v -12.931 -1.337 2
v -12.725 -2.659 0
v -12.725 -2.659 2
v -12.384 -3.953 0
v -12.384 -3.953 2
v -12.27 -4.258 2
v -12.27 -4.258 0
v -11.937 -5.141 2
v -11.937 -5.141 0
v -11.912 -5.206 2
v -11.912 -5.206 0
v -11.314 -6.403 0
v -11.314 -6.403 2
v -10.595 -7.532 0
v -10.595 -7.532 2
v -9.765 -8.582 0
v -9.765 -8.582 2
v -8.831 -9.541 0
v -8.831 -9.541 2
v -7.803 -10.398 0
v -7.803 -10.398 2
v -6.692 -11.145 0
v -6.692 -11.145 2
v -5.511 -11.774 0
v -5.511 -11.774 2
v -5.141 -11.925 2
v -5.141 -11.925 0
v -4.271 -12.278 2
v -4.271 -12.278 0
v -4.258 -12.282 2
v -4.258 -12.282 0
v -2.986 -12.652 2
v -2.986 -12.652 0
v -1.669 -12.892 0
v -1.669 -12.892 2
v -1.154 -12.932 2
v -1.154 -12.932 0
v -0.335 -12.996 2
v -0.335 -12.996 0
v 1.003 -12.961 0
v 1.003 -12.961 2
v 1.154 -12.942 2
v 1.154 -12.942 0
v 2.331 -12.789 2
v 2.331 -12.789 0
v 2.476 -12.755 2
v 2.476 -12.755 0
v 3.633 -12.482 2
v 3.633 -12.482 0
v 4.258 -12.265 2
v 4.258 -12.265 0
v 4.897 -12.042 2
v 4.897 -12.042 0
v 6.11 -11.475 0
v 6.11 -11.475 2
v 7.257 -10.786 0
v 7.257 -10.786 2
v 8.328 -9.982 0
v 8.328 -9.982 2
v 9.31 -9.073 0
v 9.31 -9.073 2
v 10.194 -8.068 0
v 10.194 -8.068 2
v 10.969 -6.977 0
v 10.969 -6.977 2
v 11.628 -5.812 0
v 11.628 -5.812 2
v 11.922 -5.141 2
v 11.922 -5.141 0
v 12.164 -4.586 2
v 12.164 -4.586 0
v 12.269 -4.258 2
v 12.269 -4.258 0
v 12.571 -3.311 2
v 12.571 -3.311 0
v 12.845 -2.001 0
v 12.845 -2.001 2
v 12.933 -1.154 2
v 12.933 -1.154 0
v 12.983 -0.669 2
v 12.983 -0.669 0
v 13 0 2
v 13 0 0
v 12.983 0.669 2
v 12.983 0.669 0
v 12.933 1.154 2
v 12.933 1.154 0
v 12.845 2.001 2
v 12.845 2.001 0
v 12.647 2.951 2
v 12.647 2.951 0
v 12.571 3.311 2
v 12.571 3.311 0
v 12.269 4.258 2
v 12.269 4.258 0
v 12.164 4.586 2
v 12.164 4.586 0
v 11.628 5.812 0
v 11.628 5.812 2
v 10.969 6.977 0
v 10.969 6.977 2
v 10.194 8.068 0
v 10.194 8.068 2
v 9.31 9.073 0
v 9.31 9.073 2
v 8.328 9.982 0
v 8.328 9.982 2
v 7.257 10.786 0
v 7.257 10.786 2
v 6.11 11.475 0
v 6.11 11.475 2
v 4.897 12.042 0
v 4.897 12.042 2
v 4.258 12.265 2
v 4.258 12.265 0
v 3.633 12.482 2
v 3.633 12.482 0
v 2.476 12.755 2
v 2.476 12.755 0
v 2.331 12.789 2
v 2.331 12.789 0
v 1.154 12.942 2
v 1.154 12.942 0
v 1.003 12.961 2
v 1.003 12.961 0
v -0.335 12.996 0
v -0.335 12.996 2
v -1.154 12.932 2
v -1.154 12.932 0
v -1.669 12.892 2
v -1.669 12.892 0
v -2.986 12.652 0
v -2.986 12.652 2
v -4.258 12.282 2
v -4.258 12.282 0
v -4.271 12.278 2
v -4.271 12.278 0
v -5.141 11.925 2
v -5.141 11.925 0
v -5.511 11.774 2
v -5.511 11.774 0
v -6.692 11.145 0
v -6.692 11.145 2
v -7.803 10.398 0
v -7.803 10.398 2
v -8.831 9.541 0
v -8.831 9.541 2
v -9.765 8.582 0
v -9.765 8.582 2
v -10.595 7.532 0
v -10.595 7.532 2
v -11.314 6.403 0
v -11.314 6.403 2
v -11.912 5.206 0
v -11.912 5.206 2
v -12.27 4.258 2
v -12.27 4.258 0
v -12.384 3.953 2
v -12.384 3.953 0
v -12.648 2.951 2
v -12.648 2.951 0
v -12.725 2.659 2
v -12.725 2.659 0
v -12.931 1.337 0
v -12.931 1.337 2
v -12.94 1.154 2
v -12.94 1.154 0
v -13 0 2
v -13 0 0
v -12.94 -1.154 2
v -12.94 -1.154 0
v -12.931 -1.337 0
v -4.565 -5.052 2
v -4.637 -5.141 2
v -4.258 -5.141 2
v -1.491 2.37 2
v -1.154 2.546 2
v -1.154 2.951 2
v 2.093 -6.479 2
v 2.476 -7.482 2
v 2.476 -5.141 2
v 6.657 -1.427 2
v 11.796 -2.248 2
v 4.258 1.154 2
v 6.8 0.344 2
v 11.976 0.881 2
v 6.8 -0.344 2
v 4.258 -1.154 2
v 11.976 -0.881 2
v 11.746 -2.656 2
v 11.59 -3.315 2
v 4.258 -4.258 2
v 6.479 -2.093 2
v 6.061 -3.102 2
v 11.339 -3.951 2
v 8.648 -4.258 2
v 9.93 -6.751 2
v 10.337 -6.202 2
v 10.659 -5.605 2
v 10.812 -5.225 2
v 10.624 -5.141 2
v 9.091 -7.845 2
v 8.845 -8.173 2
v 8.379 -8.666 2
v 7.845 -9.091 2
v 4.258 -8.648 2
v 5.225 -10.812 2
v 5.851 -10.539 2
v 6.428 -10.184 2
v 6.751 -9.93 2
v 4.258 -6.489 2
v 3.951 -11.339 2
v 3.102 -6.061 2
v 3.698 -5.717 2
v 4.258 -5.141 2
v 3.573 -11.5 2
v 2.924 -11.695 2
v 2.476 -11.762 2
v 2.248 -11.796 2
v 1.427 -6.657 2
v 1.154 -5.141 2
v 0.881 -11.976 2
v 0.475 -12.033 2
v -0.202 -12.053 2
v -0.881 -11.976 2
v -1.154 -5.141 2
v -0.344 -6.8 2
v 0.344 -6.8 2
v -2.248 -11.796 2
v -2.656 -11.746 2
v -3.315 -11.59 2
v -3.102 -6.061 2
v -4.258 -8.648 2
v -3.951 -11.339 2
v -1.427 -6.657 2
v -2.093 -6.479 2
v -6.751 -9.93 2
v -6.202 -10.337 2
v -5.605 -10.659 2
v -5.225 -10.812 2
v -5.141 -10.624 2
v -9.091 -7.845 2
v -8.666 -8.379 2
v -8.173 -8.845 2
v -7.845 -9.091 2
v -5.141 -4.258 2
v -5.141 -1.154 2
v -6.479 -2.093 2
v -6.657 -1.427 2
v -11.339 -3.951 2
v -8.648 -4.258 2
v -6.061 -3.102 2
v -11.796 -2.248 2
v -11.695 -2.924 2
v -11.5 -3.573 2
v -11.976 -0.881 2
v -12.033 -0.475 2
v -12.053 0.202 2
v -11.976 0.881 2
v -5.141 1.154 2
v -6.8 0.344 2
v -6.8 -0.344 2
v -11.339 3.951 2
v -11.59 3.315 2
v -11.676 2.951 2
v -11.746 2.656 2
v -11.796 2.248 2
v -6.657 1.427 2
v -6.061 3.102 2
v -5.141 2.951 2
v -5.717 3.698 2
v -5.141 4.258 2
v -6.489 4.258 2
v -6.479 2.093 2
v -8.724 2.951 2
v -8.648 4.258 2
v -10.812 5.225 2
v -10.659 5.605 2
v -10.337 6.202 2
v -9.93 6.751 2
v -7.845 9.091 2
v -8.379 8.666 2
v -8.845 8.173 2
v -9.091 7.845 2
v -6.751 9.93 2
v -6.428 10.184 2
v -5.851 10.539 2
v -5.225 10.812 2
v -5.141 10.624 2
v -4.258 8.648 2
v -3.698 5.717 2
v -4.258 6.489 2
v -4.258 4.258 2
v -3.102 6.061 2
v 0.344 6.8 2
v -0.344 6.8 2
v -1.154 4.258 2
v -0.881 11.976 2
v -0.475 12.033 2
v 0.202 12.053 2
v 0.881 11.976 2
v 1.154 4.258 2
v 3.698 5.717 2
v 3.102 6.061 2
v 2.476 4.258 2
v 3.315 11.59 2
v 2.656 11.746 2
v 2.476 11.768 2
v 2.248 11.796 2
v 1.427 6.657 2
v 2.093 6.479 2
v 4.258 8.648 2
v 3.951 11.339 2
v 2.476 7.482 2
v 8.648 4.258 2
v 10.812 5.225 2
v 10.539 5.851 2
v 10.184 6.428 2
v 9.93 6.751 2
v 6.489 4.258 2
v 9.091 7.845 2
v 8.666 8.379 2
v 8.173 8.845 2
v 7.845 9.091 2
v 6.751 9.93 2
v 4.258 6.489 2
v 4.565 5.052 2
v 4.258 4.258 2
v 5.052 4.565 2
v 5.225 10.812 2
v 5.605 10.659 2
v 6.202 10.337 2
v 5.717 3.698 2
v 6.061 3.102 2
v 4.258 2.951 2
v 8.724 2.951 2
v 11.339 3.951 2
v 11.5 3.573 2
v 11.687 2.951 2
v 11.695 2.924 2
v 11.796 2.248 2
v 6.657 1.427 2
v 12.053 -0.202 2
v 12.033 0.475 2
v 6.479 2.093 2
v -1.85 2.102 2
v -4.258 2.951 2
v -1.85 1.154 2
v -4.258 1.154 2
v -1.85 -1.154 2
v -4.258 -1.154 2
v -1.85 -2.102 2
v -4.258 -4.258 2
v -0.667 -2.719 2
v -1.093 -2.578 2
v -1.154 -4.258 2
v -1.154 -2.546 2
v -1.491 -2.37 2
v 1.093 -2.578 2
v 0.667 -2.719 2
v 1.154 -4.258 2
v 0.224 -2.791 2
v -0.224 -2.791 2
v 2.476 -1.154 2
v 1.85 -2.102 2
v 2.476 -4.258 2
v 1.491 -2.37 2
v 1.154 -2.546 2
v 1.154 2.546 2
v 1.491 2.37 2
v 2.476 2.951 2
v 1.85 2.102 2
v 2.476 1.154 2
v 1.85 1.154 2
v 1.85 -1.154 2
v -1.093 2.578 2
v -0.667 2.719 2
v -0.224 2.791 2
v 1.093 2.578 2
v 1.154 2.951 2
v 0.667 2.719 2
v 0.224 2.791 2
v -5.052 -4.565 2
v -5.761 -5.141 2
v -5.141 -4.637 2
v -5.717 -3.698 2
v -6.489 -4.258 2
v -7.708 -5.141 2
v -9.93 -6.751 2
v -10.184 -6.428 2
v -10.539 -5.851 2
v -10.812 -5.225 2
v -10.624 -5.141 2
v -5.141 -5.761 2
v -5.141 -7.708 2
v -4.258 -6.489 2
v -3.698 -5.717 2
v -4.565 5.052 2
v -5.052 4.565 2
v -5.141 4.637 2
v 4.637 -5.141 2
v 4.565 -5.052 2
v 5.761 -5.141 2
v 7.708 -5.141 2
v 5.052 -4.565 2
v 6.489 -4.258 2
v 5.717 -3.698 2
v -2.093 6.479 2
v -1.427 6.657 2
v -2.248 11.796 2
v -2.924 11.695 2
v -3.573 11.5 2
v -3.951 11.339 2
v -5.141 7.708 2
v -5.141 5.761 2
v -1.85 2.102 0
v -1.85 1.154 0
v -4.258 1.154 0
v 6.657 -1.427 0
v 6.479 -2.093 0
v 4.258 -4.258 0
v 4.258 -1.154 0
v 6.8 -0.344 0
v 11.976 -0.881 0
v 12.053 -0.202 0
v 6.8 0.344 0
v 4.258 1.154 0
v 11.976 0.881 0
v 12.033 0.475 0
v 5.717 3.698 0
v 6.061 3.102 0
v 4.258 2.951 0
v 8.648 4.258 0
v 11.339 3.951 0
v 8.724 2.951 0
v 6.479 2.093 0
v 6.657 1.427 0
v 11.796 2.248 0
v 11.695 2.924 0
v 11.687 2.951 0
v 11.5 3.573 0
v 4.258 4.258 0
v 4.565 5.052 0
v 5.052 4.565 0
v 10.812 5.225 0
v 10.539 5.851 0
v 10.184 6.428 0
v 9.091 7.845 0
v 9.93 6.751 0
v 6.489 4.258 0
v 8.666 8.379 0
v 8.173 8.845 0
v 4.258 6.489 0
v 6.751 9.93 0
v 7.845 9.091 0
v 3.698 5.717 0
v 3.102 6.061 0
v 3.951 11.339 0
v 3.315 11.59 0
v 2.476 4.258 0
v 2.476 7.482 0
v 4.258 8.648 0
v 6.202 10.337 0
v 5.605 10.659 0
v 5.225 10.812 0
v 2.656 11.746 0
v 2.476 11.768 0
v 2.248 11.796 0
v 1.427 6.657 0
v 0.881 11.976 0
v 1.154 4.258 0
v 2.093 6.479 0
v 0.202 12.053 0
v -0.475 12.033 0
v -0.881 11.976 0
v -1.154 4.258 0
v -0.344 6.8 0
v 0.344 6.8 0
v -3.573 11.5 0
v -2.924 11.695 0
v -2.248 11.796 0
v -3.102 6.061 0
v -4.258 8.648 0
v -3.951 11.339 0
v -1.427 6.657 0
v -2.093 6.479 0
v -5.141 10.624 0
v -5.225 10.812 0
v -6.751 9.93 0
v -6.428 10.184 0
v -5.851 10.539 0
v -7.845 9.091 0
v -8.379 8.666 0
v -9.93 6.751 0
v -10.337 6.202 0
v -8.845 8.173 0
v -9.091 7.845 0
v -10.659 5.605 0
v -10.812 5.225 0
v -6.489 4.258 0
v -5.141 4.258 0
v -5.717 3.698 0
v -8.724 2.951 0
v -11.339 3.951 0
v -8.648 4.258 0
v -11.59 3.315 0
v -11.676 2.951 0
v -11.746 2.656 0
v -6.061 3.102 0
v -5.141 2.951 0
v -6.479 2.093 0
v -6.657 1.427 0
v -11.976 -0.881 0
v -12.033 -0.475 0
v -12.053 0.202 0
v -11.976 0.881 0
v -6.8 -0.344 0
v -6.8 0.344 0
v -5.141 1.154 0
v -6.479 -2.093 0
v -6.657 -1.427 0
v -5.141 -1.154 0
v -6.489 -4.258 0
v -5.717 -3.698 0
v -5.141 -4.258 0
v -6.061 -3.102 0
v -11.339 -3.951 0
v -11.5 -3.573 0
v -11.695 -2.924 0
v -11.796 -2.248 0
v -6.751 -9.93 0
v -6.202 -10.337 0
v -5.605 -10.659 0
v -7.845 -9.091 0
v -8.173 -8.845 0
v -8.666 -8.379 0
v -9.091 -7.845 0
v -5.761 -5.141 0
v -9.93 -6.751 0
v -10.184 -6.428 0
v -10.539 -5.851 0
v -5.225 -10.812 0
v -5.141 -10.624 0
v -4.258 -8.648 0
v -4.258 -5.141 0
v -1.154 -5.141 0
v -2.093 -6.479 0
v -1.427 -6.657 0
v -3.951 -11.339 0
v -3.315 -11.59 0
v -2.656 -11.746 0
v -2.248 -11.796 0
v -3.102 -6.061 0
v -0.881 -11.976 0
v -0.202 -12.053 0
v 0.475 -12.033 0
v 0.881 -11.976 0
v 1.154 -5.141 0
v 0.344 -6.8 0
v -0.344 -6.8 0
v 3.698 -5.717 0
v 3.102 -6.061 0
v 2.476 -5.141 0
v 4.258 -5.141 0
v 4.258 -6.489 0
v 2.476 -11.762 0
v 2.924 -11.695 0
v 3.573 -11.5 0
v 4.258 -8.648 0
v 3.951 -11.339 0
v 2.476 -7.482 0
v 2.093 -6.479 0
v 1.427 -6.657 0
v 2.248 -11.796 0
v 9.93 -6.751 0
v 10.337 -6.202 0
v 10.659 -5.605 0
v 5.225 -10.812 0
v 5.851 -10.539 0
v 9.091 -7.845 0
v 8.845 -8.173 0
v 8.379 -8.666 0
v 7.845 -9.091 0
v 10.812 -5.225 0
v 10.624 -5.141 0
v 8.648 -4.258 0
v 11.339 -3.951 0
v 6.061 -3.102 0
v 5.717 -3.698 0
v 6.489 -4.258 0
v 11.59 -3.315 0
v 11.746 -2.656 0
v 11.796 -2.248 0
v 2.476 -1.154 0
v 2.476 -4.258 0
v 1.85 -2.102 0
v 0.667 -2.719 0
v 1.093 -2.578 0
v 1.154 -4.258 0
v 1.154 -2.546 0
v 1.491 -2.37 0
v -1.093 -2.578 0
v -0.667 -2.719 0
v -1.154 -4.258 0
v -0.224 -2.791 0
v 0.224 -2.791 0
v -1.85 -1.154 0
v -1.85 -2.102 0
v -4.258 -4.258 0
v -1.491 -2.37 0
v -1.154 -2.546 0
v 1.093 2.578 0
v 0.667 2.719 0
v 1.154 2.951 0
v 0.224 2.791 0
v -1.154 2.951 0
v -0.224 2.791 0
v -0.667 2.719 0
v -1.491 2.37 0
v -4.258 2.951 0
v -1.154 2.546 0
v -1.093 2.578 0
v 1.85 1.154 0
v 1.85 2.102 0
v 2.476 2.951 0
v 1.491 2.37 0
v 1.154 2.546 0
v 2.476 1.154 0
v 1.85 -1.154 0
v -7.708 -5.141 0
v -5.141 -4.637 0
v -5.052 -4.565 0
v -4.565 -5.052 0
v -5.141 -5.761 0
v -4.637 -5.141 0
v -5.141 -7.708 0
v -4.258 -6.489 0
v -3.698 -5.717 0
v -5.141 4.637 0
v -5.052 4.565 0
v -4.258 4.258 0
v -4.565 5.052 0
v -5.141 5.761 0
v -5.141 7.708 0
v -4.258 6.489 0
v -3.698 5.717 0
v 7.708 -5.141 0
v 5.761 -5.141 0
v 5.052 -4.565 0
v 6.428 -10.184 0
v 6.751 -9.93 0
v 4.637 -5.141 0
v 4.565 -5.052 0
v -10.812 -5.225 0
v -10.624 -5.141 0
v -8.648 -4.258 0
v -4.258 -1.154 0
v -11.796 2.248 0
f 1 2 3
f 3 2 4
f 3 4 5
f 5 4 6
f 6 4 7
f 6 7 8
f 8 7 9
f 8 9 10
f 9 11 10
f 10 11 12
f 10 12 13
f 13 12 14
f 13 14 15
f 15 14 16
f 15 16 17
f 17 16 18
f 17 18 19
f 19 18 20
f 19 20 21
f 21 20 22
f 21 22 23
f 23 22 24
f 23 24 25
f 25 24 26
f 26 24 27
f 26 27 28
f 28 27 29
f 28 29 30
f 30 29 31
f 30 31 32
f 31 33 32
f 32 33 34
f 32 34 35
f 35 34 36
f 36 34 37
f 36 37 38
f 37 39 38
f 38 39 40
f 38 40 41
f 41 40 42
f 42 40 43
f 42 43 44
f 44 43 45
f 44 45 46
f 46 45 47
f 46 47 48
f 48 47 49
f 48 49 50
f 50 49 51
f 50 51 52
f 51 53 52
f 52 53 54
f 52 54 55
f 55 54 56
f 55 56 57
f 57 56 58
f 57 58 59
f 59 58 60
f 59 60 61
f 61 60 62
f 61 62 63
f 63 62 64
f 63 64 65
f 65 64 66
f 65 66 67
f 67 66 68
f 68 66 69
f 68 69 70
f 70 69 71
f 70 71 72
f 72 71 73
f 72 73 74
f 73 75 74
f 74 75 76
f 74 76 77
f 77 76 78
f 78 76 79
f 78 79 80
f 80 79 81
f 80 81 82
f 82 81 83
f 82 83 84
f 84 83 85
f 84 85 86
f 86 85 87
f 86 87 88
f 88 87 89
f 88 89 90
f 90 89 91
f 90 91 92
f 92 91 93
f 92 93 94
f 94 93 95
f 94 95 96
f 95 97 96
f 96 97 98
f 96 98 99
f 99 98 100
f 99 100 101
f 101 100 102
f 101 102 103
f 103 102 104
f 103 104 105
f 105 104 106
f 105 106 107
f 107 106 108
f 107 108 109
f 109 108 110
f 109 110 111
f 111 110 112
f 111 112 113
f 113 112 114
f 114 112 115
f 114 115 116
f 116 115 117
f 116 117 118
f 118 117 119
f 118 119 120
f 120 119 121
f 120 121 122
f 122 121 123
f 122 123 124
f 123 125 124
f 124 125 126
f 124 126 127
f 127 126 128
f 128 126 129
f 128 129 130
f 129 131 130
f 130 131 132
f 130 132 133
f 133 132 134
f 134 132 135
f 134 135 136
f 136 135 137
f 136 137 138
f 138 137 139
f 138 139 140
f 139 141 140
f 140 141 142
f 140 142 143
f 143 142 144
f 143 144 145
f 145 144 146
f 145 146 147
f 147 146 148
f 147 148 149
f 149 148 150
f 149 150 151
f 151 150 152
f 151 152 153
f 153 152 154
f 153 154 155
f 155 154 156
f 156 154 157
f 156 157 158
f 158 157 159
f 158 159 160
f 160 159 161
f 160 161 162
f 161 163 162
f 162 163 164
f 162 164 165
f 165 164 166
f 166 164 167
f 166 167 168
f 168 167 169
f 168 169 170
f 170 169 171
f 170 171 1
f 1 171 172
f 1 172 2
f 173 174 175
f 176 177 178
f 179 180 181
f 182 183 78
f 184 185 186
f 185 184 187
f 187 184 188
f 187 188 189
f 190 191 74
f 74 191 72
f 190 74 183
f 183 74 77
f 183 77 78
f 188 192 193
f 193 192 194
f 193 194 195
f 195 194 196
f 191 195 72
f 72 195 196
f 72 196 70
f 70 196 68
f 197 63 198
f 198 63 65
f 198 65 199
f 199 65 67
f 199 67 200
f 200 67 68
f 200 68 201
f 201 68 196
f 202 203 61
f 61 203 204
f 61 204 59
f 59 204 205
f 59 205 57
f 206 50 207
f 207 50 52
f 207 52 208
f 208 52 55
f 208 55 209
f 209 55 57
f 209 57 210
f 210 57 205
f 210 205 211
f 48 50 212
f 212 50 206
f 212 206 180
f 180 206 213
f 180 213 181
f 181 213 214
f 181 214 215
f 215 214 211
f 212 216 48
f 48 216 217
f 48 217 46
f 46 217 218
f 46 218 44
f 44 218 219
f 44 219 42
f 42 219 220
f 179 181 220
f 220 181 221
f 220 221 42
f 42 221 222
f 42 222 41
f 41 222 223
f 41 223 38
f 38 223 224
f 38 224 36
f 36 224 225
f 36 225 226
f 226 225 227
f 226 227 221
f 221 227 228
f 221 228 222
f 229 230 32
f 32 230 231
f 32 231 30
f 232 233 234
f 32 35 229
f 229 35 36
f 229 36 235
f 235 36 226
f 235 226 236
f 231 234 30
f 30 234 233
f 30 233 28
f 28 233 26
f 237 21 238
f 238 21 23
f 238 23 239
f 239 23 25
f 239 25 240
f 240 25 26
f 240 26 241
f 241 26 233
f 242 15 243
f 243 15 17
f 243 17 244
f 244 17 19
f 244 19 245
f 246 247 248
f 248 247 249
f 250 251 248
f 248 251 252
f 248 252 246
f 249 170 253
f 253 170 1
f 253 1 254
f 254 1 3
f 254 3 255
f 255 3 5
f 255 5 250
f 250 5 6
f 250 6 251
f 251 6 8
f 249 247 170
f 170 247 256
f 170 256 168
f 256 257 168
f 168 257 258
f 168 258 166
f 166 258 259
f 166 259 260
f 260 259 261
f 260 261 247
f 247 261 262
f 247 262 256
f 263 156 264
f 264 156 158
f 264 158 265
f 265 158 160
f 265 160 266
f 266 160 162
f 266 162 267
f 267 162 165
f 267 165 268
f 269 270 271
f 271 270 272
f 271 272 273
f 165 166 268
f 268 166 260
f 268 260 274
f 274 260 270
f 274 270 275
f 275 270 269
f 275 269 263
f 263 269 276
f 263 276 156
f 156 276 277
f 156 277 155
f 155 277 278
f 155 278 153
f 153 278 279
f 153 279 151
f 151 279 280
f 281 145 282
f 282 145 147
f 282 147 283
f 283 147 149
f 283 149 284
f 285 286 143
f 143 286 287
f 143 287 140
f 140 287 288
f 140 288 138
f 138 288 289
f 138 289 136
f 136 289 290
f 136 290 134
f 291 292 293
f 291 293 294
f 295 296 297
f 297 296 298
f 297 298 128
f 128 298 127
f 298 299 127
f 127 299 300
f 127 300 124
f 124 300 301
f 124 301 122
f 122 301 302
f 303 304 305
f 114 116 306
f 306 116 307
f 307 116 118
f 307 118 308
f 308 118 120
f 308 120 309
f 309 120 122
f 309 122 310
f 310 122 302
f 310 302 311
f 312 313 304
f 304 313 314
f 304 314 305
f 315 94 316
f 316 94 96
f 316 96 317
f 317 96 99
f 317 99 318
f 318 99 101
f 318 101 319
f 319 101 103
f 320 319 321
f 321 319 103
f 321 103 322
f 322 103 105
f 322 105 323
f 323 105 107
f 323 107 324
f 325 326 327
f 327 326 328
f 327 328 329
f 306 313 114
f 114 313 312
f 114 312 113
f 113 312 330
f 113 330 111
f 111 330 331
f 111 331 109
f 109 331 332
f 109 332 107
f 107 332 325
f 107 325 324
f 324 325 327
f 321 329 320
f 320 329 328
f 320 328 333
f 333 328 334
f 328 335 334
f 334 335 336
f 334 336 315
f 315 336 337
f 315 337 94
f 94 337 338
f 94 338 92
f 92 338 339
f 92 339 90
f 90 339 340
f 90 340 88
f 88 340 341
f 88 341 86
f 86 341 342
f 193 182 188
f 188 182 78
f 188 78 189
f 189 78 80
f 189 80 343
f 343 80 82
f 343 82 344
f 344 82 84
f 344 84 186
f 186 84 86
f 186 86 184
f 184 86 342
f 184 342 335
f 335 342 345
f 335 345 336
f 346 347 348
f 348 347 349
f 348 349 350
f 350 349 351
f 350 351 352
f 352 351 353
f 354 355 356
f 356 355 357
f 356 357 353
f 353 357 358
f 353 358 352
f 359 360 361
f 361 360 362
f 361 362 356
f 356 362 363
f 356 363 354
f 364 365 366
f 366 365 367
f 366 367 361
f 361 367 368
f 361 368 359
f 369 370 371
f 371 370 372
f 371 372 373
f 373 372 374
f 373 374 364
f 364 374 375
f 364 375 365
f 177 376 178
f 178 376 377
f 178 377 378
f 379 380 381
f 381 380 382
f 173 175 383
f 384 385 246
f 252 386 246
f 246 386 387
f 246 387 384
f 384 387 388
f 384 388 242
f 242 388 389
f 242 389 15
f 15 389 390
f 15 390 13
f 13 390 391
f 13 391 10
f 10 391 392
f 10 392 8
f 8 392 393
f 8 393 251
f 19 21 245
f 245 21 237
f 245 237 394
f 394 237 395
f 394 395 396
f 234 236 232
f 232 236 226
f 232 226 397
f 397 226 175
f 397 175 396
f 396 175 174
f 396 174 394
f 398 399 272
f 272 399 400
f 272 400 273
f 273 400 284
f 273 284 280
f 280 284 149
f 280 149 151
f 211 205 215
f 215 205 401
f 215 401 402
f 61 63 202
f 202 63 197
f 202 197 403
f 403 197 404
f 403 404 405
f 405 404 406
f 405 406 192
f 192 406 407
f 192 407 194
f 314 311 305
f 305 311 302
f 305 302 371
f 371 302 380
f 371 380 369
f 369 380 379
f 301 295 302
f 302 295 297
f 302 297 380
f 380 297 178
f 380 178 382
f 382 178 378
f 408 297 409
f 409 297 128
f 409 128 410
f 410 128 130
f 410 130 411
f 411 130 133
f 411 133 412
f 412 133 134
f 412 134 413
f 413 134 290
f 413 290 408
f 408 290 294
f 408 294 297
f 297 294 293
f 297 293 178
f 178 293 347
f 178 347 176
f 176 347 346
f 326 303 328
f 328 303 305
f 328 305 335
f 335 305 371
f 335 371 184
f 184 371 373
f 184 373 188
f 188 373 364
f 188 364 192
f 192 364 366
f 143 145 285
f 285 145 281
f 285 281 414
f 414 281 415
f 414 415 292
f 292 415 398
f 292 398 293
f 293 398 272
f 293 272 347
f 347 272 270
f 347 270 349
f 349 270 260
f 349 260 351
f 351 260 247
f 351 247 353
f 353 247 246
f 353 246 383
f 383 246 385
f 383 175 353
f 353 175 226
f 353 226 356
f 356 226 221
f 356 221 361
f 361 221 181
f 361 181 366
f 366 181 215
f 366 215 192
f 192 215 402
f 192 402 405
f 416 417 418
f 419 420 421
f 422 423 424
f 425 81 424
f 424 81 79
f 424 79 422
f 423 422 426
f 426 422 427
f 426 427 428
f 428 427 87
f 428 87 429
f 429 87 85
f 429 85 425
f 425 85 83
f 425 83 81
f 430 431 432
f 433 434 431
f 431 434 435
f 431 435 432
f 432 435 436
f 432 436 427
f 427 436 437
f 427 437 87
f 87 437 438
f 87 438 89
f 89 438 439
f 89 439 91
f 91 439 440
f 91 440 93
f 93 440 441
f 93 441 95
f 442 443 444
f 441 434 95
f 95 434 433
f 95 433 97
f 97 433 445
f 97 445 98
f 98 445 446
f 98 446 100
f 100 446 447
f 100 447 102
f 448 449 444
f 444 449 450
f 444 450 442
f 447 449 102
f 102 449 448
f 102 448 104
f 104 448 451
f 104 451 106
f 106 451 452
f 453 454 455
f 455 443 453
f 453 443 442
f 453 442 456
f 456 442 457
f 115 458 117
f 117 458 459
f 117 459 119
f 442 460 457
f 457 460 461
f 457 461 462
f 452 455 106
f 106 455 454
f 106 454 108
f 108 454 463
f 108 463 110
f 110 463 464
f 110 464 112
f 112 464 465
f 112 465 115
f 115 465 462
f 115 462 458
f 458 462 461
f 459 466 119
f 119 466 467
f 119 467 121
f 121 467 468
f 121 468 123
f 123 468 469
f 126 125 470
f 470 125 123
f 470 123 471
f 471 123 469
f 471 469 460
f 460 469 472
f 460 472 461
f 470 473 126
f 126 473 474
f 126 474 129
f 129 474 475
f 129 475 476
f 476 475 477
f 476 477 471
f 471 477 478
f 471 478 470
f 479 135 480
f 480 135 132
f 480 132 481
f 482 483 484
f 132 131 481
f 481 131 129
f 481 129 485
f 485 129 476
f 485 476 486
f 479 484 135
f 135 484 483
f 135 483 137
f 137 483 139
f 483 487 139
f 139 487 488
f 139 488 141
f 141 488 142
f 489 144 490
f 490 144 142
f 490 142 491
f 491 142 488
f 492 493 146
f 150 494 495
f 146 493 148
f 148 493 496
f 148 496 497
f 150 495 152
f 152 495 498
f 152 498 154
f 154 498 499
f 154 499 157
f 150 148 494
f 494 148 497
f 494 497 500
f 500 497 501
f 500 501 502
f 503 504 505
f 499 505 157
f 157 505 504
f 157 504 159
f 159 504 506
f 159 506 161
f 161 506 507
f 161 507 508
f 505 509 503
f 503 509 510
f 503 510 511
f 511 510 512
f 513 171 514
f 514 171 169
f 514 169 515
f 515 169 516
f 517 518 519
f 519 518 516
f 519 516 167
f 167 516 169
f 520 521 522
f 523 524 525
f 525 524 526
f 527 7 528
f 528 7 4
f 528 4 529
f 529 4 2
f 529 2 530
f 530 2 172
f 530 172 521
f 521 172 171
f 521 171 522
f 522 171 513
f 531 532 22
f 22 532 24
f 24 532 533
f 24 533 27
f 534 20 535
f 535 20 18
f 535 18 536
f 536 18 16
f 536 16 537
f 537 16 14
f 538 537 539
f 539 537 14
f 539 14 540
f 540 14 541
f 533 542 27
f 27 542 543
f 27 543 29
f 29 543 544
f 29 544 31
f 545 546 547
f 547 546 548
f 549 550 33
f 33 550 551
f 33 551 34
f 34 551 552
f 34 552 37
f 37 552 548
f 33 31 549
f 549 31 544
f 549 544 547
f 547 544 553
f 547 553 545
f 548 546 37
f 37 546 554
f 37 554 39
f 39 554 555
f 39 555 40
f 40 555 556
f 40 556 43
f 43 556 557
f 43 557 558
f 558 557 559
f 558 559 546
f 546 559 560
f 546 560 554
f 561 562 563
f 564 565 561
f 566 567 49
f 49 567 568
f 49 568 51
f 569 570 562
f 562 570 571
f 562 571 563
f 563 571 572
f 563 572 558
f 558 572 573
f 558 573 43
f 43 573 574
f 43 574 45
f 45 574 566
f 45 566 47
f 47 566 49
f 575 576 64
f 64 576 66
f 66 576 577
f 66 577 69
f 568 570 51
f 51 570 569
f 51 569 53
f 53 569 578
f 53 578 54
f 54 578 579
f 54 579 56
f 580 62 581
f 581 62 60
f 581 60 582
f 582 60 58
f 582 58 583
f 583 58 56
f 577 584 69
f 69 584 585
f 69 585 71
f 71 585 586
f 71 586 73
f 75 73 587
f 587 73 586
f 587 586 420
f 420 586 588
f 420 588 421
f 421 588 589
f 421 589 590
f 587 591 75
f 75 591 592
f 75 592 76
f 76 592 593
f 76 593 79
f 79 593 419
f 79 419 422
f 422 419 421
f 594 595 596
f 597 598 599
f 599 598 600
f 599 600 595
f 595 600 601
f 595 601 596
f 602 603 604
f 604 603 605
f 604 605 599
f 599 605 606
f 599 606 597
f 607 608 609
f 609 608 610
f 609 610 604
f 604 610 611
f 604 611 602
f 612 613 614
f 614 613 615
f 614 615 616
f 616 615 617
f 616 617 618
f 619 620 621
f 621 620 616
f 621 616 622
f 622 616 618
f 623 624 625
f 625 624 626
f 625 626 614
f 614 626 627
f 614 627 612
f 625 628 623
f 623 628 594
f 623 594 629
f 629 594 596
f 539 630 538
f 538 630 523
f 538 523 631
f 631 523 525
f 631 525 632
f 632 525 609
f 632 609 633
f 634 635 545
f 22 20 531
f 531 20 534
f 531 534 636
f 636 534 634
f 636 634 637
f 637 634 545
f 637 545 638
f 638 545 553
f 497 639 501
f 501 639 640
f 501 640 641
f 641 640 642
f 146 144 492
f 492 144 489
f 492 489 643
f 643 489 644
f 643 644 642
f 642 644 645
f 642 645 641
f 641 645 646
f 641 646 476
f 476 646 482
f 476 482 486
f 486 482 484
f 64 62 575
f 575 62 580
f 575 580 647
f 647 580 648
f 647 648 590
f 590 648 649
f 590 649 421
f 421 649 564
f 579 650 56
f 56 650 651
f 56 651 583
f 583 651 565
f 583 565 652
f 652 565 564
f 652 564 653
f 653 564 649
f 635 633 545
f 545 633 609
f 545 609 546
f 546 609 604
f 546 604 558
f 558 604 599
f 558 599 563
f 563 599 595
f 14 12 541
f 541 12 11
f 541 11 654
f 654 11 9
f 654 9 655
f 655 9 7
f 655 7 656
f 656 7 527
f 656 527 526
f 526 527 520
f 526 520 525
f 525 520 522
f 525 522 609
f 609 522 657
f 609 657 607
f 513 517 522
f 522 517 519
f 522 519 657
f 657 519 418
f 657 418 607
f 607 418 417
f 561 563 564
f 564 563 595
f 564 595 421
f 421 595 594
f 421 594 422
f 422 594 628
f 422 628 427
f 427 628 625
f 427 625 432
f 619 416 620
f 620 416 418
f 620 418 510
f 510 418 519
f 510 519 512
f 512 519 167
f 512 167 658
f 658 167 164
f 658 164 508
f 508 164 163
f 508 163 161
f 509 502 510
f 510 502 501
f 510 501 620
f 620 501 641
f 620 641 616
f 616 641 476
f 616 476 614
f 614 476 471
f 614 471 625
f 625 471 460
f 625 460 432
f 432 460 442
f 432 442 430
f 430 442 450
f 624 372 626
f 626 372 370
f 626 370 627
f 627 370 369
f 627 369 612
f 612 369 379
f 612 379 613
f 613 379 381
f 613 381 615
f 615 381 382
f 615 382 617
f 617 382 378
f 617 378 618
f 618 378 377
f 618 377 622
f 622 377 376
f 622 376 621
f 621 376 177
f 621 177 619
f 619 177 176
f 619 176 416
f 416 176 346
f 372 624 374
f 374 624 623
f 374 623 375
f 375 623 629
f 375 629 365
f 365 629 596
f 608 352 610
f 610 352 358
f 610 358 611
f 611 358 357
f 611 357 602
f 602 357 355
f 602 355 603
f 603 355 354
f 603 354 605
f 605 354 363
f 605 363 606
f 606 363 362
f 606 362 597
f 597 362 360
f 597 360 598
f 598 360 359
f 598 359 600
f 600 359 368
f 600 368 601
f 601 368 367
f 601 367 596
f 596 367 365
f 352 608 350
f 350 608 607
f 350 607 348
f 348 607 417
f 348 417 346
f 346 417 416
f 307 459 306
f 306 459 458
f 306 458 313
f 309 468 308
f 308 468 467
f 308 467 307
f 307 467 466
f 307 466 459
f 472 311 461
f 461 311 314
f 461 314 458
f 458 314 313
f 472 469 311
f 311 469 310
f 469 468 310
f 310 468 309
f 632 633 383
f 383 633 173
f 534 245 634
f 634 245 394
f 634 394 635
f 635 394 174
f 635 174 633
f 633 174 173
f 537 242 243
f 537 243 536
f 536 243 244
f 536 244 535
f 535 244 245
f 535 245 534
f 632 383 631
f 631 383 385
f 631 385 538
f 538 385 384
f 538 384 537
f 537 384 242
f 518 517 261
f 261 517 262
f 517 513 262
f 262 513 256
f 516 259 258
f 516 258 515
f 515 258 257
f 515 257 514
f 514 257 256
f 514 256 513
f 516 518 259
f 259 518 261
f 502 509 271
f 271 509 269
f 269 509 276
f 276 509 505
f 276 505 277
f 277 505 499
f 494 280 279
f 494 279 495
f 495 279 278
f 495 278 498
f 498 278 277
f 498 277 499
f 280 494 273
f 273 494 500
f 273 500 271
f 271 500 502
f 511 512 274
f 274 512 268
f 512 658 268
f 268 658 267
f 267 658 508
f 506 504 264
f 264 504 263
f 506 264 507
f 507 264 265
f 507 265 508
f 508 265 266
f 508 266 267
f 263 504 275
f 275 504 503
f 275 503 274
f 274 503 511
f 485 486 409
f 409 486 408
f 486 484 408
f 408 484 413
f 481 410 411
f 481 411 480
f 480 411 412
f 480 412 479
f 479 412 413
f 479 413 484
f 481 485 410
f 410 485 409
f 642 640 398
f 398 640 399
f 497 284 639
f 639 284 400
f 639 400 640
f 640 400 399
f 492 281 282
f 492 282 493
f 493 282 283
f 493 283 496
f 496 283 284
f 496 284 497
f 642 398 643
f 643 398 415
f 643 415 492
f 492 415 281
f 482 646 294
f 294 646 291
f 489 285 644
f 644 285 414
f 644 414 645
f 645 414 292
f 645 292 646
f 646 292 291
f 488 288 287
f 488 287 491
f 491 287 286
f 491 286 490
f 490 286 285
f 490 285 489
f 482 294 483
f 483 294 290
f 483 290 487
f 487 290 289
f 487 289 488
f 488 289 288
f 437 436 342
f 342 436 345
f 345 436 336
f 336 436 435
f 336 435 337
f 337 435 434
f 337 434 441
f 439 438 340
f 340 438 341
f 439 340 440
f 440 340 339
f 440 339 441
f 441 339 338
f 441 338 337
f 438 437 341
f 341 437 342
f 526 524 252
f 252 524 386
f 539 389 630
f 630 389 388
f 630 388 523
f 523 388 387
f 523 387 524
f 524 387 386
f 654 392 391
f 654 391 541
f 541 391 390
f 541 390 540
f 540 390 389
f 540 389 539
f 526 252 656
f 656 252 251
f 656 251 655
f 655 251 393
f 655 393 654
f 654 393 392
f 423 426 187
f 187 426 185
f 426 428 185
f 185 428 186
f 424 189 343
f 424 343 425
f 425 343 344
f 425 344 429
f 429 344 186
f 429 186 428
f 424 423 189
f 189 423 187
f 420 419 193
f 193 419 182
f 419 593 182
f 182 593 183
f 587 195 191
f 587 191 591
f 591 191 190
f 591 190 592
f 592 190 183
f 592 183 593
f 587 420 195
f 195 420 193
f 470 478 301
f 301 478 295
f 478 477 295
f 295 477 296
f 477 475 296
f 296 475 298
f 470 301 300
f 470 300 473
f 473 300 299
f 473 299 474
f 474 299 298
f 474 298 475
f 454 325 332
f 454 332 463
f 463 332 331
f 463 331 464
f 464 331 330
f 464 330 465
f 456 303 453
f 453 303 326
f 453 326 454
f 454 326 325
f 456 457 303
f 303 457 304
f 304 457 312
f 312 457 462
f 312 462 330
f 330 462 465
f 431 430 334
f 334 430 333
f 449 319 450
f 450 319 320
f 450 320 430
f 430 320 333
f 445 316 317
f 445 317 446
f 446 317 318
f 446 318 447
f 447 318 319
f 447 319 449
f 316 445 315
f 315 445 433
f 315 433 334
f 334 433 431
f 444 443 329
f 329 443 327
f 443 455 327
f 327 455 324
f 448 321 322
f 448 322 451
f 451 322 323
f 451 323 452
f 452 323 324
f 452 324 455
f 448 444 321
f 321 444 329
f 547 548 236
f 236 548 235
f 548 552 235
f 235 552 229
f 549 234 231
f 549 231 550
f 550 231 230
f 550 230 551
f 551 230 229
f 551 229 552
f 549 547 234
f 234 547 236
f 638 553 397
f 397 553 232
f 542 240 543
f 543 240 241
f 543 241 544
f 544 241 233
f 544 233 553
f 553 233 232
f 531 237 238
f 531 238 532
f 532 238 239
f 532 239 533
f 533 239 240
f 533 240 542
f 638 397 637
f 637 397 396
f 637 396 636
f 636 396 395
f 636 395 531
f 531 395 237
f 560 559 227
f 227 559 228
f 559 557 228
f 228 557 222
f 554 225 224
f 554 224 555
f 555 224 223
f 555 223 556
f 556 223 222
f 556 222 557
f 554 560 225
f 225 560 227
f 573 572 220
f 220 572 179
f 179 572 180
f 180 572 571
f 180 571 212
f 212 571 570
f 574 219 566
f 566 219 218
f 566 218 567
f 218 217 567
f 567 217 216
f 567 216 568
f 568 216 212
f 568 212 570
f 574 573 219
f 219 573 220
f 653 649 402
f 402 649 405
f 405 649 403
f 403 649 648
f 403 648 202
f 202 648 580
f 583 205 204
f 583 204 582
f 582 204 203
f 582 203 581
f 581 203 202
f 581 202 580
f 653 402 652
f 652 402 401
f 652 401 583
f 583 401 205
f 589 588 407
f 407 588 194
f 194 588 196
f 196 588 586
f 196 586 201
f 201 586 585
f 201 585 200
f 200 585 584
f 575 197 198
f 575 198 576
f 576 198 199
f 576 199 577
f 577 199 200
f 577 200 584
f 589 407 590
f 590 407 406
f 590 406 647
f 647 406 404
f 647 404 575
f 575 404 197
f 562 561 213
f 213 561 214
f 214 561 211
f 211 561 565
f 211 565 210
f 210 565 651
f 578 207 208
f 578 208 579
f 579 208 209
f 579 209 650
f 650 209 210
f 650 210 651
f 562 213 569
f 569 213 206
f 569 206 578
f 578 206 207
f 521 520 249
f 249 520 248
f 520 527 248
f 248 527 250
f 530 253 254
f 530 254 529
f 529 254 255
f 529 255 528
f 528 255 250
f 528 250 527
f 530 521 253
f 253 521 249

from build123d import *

# Parameters (mm, degrees)
SKETCH1_R           = 13
BOSS_EXTRUDE1_DEPTH = 2
CUT_EXTRUDE1_DEPTH  = 2
CUT_EXTRUDE2_DEPTH  = 2


with BuildPart() as part:
    # Sketch1 → Boss-Extrude1 (new body)
    with BuildSketch(Plane.XY):
        Circle(SKETCH1_R)
    extrude(amount=BOSS_EXTRUDE1_DEPTH)

    # Sketch2 → Cut-Extrude1 (cut)
    with BuildSketch(Plane.XY.offset(2)):
        with BuildLine():
            Line((1.85, 2.101784956), (1.85, -2.101784956))
            ThreePointArc((1.85, -2.101784956), (0, -2.8), (-1.85, -2.101784956))
            Line((-1.85, -2.101784956), (-1.85, 2.101784956))
            ThreePointArc((-1.85, 2.101784956), (0, 2.8), (1.85, 2.101784956))
        make_face()
    extrude(amount=-CUT_EXTRUDE1_DEPTH, mode=Mode.SUBTRACT)

    # Sketch3 → Cut-Extrude2 (cut)
    with BuildSketch(Plane.XY.offset(2)):
        with BuildLine():
            Line((-0.344370627, 6.8), (0.344370627, 6.8))
            Line((0.344370627, 6.8), (0.881305494, 11.975564171))
            add(Edge.make_bspline(
                [(-0.881305494, 11.975564171), (0, 12.13877285), (0.881305494, 11.975564171)],
                knots=[0, 0, 0, 1, 1, 1], degree=2))
            Line((-0.881305494, 11.975564171), (-0.344370627, 6.8))
        make_face()
        with BuildLine():
            Line((2.09260599, 6.479165942), (3.950779821, 11.339408071))
            add(Edge.make_bspline(
                [(2.248228346, 11.795605364), (3.141745598, 11.725154195), (3.950779821, 11.339408071)],
                knots=[0, 0, 0, 1, 1, 1], degree=2))
            Line((2.248228346, 11.795605364), (1.427333024, 6.657425296))
            Line((1.427333024, 6.657425296), (2.09260599, 6.479165942))
        make_face()
        with BuildLine():
            Line((3.698233712, 5.716787432), (6.751015032, 9.93049005))
            add(Edge.make_bspline(
                [(5.224549139, 10.811795544), (6.069386425, 10.512485659), (6.751015032, 9.93049005)],
                knots=[0, 0, 0, 1, 1, 1], degree=2))
            Line((5.224549139, 10.811795544), (3.101766288, 6.061158059))
            Line((3.101766288, 6.061158059), (3.698233712, 5.716787432))
        make_face()
        with BuildLine():
            Line((5.051832918, 4.564819306), (9.091179725, 7.844825543))
            add(Edge.make_bspline(
                [(7.844825543, 9.091179725), (8.583408597, 8.583408597), (9.091179725, 7.844825543)],
                knots=[0, 0, 0, 1, 1, 1], degree=2))
            Line((7.844825543, 9.091179725), (4.564819306, 5.051832918))
            Line((4.564819306, 5.051832918), (5.051832918, 4.564819306))
        make_face()
        with BuildLine():
            Line((6.061158059, 3.101766288), (10.811795544, 5.224549139))
            add(Edge.make_bspline(
                [(9.93049005, 6.751015032), (10.512485659, 6.069386425), (10.811795544, 5.224549139)],
                knots=[0, 0, 0, 1, 1, 1], degree=2))
            Line((9.93049005, 6.751015032), (5.716787432, 3.698233712))
            Line((5.716787432, 3.698233712), (6.061158059, 3.101766288))
        make_face()
        with BuildLine():
            Line((6.657425296, 1.427333024), (11.795605364, 2.248228346))
            add(Edge.make_bspline(
                [(11.339408071, 3.950779821), (11.725154195, 3.141745598), (11.795605364, 2.248228346)],
                knots=[0, 0, 0, 1, 1, 1], degree=2))
            Line((11.339408071, 3.950779821), (6.479165942, 2.09260599))
            Line((6.479165942, 2.09260599), (6.657425296, 1.427333024))
        make_face()
        with BuildLine():
            Line((6.8, -0.344370627), (11.975564171, -0.881305494))
            add(Edge.make_bspline(
                [(11.975564171, 0.881305494), (12.13877285, 0), (11.975564171, -0.881305494)],
                knots=[0, 0, 0, 1, 1, 1], degree=2))
            Line((11.975564171, 0.881305494), (6.8, 0.344370627))
            Line((6.8, 0.344370627), (6.8, -0.344370627))
        make_face()
        with BuildLine():
            Line((6.479165942, -2.09260599), (11.339408071, -3.950779821))
            add(Edge.make_bspline(
                [(11.795605364, -2.248228346), (11.725154195, -3.141745598), (11.339408071, -3.950779821)],
                knots=[0, 0, 0, 1, 1, 1], degree=2))
            Line((11.795605364, -2.248228346), (6.657425296, -1.427333024))
            Line((6.657425296, -1.427333024), (6.479165942, -2.09260599))
        make_face()
        with BuildLine():
            Line((5.716787432, -3.698233712), (9.93049005, -6.751015032))
            add(Edge.make_bspline(
                [(10.811795544, -5.224549139), (10.512485659, -6.069386425), (9.93049005, -6.751015032)],
                knots=[0, 0, 0, 1, 1, 1], degree=2))
            Line((10.811795544, -5.224549139), (6.061158059, -3.101766288))
            Line((6.061158059, -3.101766288), (5.716787432, -3.698233712))
        make_face()
        with BuildLine():
            Line((4.564819306, -5.051832918), (7.844825543, -9.091179725))
            add(Edge.make_bspline(
                [(9.091179725, -7.844825543), (8.583408597, -8.583408597), (7.844825543, -9.091179725)],
                knots=[0, 0, 0, 1, 1, 1], degree=2))
            Line((9.091179725, -7.844825543), (5.051832918, -4.564819306))
            Line((5.051832918, -4.564819306), (4.564819306, -5.051832918))
        make_face()
        with BuildLine():
            Line((3.101766288, -6.061158059), (5.224549139, -10.811795544))
            add(Edge.make_bspline(
                [(6.751015032, -9.93049005), (6.069386425, -10.512485659), (5.224549139, -10.811795544)],
                knots=[0, 0, 0, 1, 1, 1], degree=2))
            Line((6.751015032, -9.93049005), (3.698233712, -5.716787432))
            Line((3.698233712, -5.716787432), (3.101766288, -6.061158059))
        make_face()
        with BuildLine():
            Line((1.427333024, -6.657425296), (2.248228346, -11.795605364))
            add(Edge.make_bspline(
                [(3.950779821, -11.339408071), (3.141745598, -11.725154195), (2.248228346, -11.795605364)],
                knots=[0, 0, 0, 1, 1, 1], degree=2))
            Line((3.950779821, -11.339408071), (2.09260599, -6.479165942))
            Line((2.09260599, -6.479165942), (1.427333024, -6.657425296))
        make_face()
        with BuildLine():
            Line((-0.344370627, -6.8), (-0.881305494, -11.975564171))
            add(Edge.make_bspline(
                [(0.881305494, -11.975564171), (0, -12.13877285), (-0.881305494, -11.975564171)],
                knots=[0, 0, 0, 1, 1, 1], degree=2))
            Line((0.881305494, -11.975564171), (0.344370627, -6.8))
            Line((0.344370627, -6.8), (-0.344370627, -6.8))
        make_face()
        with BuildLine():
            Line((-2.09260599, -6.479165942), (-3.950779821, -11.339408071))
            add(Edge.make_bspline(
                [(-2.248228346, -11.795605364), (-3.141745598, -11.725154195), (-3.950779821, -11.339408071)],
                knots=[0, 0, 0, 1, 1, 1], degree=2))
            Line((-2.248228346, -11.795605364), (-1.427333024, -6.657425296))
            Line((-1.427333024, -6.657425296), (-2.09260599, -6.479165942))
        make_face()
        with BuildLine():
            Line((-3.698233712, -5.716787432), (-6.751015032, -9.93049005))
            add(Edge.make_bspline(
                [(-5.224549139, -10.811795544), (-6.069386425, -10.512485659), (-6.751015032, -9.93049005)],
                knots=[0, 0, 0, 1, 1, 1], degree=2))
            Line((-5.224549139, -10.811795544), (-3.101766288, -6.061158059))
            Line((-3.101766288, -6.061158059), (-3.698233712, -5.716787432))
        make_face()
        with BuildLine():
            Line((-5.051832918, -4.564819306), (-9.091179725, -7.844825543))
            add(Edge.make_bspline(
                [(-7.844825543, -9.091179725), (-8.583408597, -8.583408597), (-9.091179725, -7.844825543)],
                knots=[0, 0, 0, 1, 1, 1], degree=2))
            Line((-7.844825543, -9.091179725), (-4.564819306, -5.051832918))
            Line((-4.564819306, -5.051832918), (-5.051832918, -4.564819306))
        make_face()
        with BuildLine():
            Line((-6.061158059, -3.101766288), (-10.811795544, -5.224549139))
            add(Edge.make_bspline(
                [(-9.93049005, -6.751015032), (-10.512485659, -6.069386425), (-10.811795544, -5.224549139)],
                knots=[0, 0, 0, 1, 1, 1], degree=2))
            Line((-9.93049005, -6.751015032), (-5.716787432, -3.698233712))
            Line((-5.716787432, -3.698233712), (-6.061158059, -3.101766288))
        make_face()
        with BuildLine():
            Line((-6.657425296, -1.427333024), (-11.795605364, -2.248228346))
            add(Edge.make_bspline(
                [(-11.339408071, -3.950779821), (-11.725154195, -3.141745598), (-11.795605364, -2.248228346)],
                knots=[0, 0, 0, 1, 1, 1], degree=2))
            Line((-11.339408071, -3.950779821), (-6.479165942, -2.09260599))
            Line((-6.479165942, -2.09260599), (-6.657425296, -1.427333024))
        make_face()
        with BuildLine():
            Line((-6.8, 0.344370627), (-11.975564171, 0.881305494))
            add(Edge.make_bspline(
                [(-11.975564171, -0.881305494), (-12.13877285, 0), (-11.975564171, 0.881305494)],
                knots=[0, 0, 0, 1, 1, 1], degree=2))
            Line((-11.975564171, -0.881305494), (-6.8, -0.344370627))
            Line((-6.8, -0.344370627), (-6.8, 0.344370627))
        make_face()
        with BuildLine():
            Line((-6.479165942, 2.09260599), (-11.339408071, 3.950779821))
            add(Edge.make_bspline(
                [(-11.795605364, 2.248228346), (-11.725154195, 3.141745598), (-11.339408071, 3.950779821)],
                knots=[0, 0, 0, 1, 1, 1], degree=2))
            Line((-11.795605364, 2.248228346), (-6.657425296, 1.427333024))
            Line((-6.657425296, 1.427333024), (-6.479165942, 2.09260599))
        make_face()
        with BuildLine():
            Line((-5.716787432, 3.698233712), (-9.93049005, 6.751015032))
            add(Edge.make_bspline(
                [(-10.811795544, 5.224549139), (-10.512485659, 6.069386425), (-9.93049005, 6.751015032)],
                knots=[0, 0, 0, 1, 1, 1], degree=2))
            Line((-10.811795544, 5.224549139), (-6.061158059, 3.101766288))
            Line((-6.061158059, 3.101766288), (-5.716787432, 3.698233712))
        make_face()
        with BuildLine():
            Line((-4.564819306, 5.051832918), (-7.844825543, 9.091179725))
            add(Edge.make_bspline(
                [(-9.091179725, 7.844825543), (-8.583408597, 8.583408597), (-7.844825543, 9.091179725)],
                knots=[0, 0, 0, 1, 1, 1], degree=2))
            Line((-9.091179725, 7.844825543), (-5.051832918, 4.564819306))
            Line((-5.051832918, 4.564819306), (-4.564819306, 5.051832918))
        make_face()
        with BuildLine():
            Line((-3.101766288, 6.061158059), (-5.224549139, 10.811795544))
            add(Edge.make_bspline(
                [(-6.751015032, 9.93049005), (-6.069386425, 10.512485659), (-5.224549139, 10.811795544)],
                knots=[0, 0, 0, 1, 1, 1], degree=2))
            Line((-6.751015032, 9.93049005), (-3.698233712, 5.716787432))
            Line((-3.698233712, 5.716787432), (-3.101766288, 6.061158059))
        make_face()
        with BuildLine():
            Line((-1.427333024, 6.657425296), (-2.248228346, 11.795605364))
            add(Edge.make_bspline(
                [(-3.950779821, 11.339408071), (-3.141745598, 11.725154195), (-2.248228346, 11.795605364)],
                knots=[0, 0, 0, 1, 1, 1], degree=2))
            Line((-3.950779821, 11.339408071), (-2.09260599, 6.479165942))
            Line((-2.09260599, 6.479165942), (-1.427333024, 6.657425296))
        make_face()
    extrude(amount=-CUT_EXTRUDE2_DEPTH, mode=Mode.SUBTRACT)


solid = part.part
